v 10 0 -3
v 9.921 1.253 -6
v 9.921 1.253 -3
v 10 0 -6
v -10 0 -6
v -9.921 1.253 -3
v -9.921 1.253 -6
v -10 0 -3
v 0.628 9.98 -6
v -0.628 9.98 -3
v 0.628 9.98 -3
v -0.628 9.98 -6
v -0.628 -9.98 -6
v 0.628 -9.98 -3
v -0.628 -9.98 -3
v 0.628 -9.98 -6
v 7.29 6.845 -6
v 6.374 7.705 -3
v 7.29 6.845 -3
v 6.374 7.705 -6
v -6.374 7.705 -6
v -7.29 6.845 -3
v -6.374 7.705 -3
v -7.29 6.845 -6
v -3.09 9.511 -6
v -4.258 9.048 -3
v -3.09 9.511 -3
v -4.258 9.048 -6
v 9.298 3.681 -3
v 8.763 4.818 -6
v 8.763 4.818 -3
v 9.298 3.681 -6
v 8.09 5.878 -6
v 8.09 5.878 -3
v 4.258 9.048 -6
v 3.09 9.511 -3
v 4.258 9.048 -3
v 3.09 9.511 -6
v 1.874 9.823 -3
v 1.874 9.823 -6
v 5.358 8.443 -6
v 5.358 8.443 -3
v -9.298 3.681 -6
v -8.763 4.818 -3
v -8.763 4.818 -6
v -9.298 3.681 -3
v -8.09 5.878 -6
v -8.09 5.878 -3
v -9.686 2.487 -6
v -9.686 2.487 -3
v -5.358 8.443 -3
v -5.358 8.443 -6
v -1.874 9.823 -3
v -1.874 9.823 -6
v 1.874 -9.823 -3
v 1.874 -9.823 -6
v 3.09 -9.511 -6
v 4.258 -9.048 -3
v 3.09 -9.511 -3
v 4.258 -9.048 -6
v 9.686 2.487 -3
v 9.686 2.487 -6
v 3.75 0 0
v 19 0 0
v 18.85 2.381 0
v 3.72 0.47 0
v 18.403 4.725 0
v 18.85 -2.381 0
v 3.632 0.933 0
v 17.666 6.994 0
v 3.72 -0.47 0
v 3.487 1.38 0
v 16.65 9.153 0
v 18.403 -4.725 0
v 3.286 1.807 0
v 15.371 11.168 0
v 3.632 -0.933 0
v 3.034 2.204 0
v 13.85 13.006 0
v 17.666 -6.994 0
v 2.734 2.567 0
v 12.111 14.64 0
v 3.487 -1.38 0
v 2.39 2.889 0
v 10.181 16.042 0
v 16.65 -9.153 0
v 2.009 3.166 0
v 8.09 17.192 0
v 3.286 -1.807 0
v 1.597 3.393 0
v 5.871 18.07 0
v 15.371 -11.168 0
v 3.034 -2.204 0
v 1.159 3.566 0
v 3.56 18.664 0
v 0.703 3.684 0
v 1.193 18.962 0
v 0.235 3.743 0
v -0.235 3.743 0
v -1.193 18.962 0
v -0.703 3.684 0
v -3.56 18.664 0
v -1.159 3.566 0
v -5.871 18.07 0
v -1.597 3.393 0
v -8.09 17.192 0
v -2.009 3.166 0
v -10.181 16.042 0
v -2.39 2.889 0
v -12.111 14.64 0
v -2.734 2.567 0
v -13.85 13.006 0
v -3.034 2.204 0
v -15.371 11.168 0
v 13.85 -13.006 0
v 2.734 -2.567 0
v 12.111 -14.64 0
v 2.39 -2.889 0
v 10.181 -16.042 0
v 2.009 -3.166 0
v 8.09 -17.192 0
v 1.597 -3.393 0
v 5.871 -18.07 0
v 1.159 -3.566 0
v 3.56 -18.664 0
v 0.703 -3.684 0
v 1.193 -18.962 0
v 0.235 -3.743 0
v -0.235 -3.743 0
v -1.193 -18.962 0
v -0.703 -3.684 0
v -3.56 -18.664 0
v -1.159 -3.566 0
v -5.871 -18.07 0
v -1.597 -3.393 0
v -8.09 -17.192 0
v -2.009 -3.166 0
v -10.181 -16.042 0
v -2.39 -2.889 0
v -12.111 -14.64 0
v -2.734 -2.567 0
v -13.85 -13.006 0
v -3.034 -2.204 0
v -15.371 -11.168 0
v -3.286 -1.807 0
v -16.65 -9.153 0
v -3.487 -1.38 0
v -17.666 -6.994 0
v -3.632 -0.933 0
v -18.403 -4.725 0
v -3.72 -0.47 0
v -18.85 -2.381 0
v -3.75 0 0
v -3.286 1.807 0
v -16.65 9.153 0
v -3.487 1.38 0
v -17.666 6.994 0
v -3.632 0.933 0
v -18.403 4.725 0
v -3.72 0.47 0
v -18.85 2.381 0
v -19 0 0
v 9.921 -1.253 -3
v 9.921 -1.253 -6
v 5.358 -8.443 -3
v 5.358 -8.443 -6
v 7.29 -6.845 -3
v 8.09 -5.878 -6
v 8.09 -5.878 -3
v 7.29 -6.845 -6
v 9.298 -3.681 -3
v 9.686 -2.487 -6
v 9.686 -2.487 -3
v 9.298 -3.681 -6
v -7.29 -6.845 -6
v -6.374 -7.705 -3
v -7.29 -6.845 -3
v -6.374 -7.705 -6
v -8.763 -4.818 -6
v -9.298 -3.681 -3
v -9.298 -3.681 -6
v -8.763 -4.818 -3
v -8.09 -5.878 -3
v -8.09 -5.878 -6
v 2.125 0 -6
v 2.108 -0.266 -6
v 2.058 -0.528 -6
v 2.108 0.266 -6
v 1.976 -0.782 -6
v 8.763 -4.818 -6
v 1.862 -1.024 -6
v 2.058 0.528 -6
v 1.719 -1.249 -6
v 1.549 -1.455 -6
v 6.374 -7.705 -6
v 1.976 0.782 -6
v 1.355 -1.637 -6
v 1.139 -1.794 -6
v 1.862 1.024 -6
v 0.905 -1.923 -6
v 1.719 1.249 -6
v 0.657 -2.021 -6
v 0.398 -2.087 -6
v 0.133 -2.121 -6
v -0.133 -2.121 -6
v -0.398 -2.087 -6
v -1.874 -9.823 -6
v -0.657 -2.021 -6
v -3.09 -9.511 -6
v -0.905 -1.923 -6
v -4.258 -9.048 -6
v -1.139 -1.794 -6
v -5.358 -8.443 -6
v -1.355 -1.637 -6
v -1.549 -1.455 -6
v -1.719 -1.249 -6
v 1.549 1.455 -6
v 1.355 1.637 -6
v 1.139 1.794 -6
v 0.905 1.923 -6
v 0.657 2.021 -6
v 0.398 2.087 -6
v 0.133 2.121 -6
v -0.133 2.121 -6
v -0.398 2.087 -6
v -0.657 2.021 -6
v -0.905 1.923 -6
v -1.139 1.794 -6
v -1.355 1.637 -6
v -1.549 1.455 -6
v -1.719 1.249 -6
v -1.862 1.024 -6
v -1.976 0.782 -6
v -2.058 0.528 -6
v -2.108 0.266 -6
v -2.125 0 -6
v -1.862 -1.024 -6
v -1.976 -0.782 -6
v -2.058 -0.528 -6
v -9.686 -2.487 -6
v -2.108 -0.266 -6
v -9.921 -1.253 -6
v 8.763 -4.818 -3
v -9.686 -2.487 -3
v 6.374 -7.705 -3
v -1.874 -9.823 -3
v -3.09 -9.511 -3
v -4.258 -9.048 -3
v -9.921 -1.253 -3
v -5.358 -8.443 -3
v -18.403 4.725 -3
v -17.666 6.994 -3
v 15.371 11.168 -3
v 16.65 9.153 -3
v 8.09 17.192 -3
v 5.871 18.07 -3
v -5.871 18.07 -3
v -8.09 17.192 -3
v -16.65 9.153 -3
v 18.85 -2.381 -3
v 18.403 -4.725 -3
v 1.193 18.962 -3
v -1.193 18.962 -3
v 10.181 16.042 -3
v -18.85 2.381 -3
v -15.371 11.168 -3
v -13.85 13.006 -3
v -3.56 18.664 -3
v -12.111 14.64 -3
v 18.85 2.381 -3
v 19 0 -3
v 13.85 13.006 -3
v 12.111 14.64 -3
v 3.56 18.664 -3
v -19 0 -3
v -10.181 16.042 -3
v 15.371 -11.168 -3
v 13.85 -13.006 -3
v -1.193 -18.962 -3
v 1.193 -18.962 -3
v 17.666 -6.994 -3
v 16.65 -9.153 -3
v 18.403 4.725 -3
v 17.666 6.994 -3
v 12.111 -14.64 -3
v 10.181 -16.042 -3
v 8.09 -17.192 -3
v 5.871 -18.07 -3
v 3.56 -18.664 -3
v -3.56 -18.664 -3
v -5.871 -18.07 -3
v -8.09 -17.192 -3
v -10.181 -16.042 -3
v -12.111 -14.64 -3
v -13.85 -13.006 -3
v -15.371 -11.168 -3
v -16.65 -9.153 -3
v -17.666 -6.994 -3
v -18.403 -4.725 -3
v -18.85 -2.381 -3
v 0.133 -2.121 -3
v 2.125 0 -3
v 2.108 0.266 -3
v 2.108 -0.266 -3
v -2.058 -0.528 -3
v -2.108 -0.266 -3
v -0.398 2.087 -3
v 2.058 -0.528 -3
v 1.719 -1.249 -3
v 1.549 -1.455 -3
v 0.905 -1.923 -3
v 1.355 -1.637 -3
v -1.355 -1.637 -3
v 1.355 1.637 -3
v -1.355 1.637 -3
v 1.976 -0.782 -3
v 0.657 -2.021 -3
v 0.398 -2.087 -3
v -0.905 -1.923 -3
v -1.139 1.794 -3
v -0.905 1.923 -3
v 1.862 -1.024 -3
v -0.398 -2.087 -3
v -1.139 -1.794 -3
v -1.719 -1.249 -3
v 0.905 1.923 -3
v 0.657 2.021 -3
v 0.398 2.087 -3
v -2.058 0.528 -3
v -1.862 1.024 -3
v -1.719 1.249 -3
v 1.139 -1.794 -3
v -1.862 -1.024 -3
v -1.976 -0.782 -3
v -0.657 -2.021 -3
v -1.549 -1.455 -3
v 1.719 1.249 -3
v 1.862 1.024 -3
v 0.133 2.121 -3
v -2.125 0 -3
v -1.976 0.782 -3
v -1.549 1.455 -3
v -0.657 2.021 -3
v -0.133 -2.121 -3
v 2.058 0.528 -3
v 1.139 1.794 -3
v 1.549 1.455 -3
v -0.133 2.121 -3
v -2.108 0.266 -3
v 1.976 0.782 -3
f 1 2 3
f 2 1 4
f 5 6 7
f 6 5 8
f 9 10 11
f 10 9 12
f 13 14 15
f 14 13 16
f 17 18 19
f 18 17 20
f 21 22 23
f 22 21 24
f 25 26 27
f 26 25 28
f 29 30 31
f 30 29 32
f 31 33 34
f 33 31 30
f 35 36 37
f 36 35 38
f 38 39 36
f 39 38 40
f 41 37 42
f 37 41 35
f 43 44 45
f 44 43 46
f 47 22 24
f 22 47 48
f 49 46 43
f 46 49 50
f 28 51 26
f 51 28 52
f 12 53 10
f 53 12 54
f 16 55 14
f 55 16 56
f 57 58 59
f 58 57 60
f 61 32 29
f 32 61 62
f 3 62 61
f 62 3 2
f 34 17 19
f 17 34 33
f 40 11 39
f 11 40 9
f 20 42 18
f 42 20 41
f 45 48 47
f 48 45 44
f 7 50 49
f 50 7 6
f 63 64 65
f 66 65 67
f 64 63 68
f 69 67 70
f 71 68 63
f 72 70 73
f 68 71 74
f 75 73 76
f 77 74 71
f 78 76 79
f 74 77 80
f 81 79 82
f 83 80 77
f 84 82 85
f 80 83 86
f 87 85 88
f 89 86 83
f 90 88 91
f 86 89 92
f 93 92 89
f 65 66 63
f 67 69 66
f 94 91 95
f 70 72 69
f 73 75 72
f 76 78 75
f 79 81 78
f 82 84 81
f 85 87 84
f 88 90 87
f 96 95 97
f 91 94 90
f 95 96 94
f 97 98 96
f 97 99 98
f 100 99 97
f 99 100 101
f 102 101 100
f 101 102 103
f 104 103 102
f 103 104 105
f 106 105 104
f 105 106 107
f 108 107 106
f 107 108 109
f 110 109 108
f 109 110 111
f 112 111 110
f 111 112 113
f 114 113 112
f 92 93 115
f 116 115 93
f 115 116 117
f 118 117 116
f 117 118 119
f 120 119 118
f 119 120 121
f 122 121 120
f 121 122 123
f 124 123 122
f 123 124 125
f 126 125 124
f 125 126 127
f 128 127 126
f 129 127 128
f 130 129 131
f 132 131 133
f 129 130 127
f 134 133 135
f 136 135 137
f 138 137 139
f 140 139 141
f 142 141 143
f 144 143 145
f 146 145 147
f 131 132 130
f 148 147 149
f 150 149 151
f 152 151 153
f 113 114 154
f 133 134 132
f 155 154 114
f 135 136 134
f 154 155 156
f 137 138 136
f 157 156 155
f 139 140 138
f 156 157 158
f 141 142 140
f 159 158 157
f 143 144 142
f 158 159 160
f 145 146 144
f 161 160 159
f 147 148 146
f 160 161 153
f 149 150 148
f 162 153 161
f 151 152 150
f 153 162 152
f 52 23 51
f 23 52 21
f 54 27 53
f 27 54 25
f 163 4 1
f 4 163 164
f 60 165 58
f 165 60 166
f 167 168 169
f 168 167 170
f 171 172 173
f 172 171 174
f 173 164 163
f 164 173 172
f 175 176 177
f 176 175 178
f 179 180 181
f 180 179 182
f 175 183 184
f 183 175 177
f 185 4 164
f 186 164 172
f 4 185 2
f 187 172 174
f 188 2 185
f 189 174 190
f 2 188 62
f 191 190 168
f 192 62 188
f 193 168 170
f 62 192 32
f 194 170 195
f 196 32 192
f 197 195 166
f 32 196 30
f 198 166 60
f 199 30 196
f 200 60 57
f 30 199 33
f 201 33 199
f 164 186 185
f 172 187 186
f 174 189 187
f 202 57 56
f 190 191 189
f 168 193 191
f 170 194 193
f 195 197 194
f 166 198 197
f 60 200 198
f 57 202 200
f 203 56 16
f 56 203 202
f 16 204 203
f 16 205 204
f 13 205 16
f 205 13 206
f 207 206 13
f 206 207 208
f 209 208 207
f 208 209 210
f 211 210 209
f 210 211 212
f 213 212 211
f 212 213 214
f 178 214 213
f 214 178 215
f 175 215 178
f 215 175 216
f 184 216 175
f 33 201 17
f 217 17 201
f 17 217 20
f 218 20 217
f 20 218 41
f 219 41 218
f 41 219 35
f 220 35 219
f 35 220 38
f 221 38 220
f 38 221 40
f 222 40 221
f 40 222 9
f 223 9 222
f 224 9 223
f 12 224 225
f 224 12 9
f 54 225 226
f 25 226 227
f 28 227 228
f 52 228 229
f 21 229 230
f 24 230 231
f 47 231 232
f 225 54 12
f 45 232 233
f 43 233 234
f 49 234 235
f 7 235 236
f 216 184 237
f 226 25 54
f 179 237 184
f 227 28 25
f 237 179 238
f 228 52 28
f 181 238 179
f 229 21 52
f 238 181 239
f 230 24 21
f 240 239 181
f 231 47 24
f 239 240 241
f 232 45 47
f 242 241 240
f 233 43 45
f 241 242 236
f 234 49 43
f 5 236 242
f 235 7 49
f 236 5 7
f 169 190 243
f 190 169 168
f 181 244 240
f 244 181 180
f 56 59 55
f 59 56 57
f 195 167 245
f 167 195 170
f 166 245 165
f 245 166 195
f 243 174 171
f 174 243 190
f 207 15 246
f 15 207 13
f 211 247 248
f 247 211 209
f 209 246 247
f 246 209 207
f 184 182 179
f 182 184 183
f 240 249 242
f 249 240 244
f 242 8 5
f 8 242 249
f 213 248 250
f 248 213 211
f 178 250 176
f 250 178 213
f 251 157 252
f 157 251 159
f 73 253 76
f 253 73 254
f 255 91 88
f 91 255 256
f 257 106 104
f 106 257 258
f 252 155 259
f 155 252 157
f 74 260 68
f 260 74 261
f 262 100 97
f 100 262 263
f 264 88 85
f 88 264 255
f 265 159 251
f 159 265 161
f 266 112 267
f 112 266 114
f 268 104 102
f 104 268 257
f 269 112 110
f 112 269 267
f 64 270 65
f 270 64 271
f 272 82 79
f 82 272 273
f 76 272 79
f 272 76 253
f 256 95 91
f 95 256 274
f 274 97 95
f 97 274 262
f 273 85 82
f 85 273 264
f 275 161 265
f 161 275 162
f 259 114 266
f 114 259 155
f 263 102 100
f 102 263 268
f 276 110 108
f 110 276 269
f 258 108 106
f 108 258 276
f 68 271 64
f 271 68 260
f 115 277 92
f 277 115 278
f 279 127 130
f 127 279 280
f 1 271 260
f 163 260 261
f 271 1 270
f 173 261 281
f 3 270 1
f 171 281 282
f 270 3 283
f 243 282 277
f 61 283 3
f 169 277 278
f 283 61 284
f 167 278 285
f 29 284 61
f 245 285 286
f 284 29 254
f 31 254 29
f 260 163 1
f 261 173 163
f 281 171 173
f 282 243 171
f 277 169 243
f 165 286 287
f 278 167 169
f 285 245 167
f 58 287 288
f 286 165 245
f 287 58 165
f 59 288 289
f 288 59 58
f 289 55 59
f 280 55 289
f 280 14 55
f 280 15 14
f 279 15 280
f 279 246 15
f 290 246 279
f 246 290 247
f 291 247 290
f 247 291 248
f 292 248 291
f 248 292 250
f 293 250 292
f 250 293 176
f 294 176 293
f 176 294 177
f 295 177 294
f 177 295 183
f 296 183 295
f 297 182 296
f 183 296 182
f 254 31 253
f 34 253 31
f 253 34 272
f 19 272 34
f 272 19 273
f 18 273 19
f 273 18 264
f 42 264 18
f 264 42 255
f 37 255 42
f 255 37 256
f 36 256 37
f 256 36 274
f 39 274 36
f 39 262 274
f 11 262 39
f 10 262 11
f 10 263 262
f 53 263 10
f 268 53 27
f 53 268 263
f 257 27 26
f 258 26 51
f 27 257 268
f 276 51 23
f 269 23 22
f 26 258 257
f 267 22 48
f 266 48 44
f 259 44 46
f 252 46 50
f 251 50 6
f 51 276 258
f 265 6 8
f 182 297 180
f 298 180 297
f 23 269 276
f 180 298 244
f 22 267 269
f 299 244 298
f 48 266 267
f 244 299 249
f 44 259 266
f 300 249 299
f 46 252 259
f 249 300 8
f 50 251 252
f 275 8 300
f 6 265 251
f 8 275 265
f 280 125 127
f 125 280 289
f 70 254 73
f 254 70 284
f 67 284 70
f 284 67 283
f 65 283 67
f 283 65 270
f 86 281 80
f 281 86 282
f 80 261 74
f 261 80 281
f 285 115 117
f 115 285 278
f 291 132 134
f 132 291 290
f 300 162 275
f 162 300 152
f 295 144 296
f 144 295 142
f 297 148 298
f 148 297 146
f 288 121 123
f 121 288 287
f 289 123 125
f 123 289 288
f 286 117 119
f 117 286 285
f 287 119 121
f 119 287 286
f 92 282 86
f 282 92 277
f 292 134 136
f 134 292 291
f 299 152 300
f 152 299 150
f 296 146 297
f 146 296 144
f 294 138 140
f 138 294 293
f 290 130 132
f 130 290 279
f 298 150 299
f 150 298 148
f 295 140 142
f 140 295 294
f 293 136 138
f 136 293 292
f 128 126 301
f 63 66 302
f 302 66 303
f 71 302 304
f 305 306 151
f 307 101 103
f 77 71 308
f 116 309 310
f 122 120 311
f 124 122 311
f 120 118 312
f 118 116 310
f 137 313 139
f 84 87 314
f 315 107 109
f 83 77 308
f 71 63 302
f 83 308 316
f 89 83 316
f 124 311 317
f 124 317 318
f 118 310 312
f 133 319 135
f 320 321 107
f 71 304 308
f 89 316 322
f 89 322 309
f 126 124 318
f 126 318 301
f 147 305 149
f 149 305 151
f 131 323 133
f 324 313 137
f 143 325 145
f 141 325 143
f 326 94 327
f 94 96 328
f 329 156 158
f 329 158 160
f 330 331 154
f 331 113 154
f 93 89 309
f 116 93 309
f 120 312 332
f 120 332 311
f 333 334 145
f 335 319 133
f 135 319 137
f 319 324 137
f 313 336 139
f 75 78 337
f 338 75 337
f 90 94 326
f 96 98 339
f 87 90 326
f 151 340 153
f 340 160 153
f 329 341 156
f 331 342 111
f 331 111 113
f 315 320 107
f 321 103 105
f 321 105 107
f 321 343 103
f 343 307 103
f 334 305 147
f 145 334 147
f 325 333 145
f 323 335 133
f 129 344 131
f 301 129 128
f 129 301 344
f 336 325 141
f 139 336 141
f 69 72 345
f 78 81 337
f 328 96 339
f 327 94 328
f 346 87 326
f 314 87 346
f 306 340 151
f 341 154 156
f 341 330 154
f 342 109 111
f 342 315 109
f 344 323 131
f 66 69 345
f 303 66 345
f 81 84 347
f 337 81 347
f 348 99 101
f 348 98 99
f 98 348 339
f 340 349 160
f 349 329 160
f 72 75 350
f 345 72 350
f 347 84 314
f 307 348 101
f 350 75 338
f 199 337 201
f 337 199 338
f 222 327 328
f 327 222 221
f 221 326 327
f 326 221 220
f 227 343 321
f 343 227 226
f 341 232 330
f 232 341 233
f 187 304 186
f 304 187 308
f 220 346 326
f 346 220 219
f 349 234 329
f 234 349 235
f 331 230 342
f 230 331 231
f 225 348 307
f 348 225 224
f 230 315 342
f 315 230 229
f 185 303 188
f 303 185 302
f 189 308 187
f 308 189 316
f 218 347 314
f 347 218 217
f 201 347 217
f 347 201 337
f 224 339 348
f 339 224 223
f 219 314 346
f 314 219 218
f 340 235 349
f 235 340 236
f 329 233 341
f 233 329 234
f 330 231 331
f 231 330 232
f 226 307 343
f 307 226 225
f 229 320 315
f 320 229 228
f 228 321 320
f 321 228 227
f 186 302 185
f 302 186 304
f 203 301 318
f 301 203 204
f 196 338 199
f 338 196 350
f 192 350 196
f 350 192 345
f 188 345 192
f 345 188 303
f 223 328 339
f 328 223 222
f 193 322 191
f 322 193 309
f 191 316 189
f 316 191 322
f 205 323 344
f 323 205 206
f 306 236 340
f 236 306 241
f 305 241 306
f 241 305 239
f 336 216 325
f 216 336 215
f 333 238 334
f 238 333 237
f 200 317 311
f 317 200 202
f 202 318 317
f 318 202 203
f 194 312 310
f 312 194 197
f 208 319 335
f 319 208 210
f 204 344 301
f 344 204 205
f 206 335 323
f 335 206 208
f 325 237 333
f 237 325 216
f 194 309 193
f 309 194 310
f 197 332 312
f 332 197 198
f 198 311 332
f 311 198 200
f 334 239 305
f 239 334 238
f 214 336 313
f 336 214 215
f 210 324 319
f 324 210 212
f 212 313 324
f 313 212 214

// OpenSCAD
$fn = 50;


difference() {
	union() {
		translate(v = [0, 0, -6.0000000000]) {
			cylinder(h = 6, r = 10.0000000000);
		}
		translate(v = [0, 0, -3.0000000000]) {
			cylinder(h = 3, r = 19.0000000000);
		}
	}
	union() {
		translate(v = [0, 0, 0]) {
			rotate(a = [0, 0, 0]) {
				difference() {
					union() {
						#translate(v = [0, 0, -6.0000000000]) {
							cylinder(h = 6, r = 2.0000000000);
						}
						#translate(v = [0, 0, -3]) {
							cylinder(h = 3, r = 10.0000000000, r1 = 2.1250000000, r2 = 3.7500000000);
						}
						#translate(v = [0, 0, -6.0000000000]) {
							cylinder(h = 6, r = 2.1250000000);
						}
						#translate(v = [0, 0, -6.0000000000]) {
							cylinder(h = 6, r = 2.0000000000);
						}
					}
					union();
				}
			}
		}
	}
}
